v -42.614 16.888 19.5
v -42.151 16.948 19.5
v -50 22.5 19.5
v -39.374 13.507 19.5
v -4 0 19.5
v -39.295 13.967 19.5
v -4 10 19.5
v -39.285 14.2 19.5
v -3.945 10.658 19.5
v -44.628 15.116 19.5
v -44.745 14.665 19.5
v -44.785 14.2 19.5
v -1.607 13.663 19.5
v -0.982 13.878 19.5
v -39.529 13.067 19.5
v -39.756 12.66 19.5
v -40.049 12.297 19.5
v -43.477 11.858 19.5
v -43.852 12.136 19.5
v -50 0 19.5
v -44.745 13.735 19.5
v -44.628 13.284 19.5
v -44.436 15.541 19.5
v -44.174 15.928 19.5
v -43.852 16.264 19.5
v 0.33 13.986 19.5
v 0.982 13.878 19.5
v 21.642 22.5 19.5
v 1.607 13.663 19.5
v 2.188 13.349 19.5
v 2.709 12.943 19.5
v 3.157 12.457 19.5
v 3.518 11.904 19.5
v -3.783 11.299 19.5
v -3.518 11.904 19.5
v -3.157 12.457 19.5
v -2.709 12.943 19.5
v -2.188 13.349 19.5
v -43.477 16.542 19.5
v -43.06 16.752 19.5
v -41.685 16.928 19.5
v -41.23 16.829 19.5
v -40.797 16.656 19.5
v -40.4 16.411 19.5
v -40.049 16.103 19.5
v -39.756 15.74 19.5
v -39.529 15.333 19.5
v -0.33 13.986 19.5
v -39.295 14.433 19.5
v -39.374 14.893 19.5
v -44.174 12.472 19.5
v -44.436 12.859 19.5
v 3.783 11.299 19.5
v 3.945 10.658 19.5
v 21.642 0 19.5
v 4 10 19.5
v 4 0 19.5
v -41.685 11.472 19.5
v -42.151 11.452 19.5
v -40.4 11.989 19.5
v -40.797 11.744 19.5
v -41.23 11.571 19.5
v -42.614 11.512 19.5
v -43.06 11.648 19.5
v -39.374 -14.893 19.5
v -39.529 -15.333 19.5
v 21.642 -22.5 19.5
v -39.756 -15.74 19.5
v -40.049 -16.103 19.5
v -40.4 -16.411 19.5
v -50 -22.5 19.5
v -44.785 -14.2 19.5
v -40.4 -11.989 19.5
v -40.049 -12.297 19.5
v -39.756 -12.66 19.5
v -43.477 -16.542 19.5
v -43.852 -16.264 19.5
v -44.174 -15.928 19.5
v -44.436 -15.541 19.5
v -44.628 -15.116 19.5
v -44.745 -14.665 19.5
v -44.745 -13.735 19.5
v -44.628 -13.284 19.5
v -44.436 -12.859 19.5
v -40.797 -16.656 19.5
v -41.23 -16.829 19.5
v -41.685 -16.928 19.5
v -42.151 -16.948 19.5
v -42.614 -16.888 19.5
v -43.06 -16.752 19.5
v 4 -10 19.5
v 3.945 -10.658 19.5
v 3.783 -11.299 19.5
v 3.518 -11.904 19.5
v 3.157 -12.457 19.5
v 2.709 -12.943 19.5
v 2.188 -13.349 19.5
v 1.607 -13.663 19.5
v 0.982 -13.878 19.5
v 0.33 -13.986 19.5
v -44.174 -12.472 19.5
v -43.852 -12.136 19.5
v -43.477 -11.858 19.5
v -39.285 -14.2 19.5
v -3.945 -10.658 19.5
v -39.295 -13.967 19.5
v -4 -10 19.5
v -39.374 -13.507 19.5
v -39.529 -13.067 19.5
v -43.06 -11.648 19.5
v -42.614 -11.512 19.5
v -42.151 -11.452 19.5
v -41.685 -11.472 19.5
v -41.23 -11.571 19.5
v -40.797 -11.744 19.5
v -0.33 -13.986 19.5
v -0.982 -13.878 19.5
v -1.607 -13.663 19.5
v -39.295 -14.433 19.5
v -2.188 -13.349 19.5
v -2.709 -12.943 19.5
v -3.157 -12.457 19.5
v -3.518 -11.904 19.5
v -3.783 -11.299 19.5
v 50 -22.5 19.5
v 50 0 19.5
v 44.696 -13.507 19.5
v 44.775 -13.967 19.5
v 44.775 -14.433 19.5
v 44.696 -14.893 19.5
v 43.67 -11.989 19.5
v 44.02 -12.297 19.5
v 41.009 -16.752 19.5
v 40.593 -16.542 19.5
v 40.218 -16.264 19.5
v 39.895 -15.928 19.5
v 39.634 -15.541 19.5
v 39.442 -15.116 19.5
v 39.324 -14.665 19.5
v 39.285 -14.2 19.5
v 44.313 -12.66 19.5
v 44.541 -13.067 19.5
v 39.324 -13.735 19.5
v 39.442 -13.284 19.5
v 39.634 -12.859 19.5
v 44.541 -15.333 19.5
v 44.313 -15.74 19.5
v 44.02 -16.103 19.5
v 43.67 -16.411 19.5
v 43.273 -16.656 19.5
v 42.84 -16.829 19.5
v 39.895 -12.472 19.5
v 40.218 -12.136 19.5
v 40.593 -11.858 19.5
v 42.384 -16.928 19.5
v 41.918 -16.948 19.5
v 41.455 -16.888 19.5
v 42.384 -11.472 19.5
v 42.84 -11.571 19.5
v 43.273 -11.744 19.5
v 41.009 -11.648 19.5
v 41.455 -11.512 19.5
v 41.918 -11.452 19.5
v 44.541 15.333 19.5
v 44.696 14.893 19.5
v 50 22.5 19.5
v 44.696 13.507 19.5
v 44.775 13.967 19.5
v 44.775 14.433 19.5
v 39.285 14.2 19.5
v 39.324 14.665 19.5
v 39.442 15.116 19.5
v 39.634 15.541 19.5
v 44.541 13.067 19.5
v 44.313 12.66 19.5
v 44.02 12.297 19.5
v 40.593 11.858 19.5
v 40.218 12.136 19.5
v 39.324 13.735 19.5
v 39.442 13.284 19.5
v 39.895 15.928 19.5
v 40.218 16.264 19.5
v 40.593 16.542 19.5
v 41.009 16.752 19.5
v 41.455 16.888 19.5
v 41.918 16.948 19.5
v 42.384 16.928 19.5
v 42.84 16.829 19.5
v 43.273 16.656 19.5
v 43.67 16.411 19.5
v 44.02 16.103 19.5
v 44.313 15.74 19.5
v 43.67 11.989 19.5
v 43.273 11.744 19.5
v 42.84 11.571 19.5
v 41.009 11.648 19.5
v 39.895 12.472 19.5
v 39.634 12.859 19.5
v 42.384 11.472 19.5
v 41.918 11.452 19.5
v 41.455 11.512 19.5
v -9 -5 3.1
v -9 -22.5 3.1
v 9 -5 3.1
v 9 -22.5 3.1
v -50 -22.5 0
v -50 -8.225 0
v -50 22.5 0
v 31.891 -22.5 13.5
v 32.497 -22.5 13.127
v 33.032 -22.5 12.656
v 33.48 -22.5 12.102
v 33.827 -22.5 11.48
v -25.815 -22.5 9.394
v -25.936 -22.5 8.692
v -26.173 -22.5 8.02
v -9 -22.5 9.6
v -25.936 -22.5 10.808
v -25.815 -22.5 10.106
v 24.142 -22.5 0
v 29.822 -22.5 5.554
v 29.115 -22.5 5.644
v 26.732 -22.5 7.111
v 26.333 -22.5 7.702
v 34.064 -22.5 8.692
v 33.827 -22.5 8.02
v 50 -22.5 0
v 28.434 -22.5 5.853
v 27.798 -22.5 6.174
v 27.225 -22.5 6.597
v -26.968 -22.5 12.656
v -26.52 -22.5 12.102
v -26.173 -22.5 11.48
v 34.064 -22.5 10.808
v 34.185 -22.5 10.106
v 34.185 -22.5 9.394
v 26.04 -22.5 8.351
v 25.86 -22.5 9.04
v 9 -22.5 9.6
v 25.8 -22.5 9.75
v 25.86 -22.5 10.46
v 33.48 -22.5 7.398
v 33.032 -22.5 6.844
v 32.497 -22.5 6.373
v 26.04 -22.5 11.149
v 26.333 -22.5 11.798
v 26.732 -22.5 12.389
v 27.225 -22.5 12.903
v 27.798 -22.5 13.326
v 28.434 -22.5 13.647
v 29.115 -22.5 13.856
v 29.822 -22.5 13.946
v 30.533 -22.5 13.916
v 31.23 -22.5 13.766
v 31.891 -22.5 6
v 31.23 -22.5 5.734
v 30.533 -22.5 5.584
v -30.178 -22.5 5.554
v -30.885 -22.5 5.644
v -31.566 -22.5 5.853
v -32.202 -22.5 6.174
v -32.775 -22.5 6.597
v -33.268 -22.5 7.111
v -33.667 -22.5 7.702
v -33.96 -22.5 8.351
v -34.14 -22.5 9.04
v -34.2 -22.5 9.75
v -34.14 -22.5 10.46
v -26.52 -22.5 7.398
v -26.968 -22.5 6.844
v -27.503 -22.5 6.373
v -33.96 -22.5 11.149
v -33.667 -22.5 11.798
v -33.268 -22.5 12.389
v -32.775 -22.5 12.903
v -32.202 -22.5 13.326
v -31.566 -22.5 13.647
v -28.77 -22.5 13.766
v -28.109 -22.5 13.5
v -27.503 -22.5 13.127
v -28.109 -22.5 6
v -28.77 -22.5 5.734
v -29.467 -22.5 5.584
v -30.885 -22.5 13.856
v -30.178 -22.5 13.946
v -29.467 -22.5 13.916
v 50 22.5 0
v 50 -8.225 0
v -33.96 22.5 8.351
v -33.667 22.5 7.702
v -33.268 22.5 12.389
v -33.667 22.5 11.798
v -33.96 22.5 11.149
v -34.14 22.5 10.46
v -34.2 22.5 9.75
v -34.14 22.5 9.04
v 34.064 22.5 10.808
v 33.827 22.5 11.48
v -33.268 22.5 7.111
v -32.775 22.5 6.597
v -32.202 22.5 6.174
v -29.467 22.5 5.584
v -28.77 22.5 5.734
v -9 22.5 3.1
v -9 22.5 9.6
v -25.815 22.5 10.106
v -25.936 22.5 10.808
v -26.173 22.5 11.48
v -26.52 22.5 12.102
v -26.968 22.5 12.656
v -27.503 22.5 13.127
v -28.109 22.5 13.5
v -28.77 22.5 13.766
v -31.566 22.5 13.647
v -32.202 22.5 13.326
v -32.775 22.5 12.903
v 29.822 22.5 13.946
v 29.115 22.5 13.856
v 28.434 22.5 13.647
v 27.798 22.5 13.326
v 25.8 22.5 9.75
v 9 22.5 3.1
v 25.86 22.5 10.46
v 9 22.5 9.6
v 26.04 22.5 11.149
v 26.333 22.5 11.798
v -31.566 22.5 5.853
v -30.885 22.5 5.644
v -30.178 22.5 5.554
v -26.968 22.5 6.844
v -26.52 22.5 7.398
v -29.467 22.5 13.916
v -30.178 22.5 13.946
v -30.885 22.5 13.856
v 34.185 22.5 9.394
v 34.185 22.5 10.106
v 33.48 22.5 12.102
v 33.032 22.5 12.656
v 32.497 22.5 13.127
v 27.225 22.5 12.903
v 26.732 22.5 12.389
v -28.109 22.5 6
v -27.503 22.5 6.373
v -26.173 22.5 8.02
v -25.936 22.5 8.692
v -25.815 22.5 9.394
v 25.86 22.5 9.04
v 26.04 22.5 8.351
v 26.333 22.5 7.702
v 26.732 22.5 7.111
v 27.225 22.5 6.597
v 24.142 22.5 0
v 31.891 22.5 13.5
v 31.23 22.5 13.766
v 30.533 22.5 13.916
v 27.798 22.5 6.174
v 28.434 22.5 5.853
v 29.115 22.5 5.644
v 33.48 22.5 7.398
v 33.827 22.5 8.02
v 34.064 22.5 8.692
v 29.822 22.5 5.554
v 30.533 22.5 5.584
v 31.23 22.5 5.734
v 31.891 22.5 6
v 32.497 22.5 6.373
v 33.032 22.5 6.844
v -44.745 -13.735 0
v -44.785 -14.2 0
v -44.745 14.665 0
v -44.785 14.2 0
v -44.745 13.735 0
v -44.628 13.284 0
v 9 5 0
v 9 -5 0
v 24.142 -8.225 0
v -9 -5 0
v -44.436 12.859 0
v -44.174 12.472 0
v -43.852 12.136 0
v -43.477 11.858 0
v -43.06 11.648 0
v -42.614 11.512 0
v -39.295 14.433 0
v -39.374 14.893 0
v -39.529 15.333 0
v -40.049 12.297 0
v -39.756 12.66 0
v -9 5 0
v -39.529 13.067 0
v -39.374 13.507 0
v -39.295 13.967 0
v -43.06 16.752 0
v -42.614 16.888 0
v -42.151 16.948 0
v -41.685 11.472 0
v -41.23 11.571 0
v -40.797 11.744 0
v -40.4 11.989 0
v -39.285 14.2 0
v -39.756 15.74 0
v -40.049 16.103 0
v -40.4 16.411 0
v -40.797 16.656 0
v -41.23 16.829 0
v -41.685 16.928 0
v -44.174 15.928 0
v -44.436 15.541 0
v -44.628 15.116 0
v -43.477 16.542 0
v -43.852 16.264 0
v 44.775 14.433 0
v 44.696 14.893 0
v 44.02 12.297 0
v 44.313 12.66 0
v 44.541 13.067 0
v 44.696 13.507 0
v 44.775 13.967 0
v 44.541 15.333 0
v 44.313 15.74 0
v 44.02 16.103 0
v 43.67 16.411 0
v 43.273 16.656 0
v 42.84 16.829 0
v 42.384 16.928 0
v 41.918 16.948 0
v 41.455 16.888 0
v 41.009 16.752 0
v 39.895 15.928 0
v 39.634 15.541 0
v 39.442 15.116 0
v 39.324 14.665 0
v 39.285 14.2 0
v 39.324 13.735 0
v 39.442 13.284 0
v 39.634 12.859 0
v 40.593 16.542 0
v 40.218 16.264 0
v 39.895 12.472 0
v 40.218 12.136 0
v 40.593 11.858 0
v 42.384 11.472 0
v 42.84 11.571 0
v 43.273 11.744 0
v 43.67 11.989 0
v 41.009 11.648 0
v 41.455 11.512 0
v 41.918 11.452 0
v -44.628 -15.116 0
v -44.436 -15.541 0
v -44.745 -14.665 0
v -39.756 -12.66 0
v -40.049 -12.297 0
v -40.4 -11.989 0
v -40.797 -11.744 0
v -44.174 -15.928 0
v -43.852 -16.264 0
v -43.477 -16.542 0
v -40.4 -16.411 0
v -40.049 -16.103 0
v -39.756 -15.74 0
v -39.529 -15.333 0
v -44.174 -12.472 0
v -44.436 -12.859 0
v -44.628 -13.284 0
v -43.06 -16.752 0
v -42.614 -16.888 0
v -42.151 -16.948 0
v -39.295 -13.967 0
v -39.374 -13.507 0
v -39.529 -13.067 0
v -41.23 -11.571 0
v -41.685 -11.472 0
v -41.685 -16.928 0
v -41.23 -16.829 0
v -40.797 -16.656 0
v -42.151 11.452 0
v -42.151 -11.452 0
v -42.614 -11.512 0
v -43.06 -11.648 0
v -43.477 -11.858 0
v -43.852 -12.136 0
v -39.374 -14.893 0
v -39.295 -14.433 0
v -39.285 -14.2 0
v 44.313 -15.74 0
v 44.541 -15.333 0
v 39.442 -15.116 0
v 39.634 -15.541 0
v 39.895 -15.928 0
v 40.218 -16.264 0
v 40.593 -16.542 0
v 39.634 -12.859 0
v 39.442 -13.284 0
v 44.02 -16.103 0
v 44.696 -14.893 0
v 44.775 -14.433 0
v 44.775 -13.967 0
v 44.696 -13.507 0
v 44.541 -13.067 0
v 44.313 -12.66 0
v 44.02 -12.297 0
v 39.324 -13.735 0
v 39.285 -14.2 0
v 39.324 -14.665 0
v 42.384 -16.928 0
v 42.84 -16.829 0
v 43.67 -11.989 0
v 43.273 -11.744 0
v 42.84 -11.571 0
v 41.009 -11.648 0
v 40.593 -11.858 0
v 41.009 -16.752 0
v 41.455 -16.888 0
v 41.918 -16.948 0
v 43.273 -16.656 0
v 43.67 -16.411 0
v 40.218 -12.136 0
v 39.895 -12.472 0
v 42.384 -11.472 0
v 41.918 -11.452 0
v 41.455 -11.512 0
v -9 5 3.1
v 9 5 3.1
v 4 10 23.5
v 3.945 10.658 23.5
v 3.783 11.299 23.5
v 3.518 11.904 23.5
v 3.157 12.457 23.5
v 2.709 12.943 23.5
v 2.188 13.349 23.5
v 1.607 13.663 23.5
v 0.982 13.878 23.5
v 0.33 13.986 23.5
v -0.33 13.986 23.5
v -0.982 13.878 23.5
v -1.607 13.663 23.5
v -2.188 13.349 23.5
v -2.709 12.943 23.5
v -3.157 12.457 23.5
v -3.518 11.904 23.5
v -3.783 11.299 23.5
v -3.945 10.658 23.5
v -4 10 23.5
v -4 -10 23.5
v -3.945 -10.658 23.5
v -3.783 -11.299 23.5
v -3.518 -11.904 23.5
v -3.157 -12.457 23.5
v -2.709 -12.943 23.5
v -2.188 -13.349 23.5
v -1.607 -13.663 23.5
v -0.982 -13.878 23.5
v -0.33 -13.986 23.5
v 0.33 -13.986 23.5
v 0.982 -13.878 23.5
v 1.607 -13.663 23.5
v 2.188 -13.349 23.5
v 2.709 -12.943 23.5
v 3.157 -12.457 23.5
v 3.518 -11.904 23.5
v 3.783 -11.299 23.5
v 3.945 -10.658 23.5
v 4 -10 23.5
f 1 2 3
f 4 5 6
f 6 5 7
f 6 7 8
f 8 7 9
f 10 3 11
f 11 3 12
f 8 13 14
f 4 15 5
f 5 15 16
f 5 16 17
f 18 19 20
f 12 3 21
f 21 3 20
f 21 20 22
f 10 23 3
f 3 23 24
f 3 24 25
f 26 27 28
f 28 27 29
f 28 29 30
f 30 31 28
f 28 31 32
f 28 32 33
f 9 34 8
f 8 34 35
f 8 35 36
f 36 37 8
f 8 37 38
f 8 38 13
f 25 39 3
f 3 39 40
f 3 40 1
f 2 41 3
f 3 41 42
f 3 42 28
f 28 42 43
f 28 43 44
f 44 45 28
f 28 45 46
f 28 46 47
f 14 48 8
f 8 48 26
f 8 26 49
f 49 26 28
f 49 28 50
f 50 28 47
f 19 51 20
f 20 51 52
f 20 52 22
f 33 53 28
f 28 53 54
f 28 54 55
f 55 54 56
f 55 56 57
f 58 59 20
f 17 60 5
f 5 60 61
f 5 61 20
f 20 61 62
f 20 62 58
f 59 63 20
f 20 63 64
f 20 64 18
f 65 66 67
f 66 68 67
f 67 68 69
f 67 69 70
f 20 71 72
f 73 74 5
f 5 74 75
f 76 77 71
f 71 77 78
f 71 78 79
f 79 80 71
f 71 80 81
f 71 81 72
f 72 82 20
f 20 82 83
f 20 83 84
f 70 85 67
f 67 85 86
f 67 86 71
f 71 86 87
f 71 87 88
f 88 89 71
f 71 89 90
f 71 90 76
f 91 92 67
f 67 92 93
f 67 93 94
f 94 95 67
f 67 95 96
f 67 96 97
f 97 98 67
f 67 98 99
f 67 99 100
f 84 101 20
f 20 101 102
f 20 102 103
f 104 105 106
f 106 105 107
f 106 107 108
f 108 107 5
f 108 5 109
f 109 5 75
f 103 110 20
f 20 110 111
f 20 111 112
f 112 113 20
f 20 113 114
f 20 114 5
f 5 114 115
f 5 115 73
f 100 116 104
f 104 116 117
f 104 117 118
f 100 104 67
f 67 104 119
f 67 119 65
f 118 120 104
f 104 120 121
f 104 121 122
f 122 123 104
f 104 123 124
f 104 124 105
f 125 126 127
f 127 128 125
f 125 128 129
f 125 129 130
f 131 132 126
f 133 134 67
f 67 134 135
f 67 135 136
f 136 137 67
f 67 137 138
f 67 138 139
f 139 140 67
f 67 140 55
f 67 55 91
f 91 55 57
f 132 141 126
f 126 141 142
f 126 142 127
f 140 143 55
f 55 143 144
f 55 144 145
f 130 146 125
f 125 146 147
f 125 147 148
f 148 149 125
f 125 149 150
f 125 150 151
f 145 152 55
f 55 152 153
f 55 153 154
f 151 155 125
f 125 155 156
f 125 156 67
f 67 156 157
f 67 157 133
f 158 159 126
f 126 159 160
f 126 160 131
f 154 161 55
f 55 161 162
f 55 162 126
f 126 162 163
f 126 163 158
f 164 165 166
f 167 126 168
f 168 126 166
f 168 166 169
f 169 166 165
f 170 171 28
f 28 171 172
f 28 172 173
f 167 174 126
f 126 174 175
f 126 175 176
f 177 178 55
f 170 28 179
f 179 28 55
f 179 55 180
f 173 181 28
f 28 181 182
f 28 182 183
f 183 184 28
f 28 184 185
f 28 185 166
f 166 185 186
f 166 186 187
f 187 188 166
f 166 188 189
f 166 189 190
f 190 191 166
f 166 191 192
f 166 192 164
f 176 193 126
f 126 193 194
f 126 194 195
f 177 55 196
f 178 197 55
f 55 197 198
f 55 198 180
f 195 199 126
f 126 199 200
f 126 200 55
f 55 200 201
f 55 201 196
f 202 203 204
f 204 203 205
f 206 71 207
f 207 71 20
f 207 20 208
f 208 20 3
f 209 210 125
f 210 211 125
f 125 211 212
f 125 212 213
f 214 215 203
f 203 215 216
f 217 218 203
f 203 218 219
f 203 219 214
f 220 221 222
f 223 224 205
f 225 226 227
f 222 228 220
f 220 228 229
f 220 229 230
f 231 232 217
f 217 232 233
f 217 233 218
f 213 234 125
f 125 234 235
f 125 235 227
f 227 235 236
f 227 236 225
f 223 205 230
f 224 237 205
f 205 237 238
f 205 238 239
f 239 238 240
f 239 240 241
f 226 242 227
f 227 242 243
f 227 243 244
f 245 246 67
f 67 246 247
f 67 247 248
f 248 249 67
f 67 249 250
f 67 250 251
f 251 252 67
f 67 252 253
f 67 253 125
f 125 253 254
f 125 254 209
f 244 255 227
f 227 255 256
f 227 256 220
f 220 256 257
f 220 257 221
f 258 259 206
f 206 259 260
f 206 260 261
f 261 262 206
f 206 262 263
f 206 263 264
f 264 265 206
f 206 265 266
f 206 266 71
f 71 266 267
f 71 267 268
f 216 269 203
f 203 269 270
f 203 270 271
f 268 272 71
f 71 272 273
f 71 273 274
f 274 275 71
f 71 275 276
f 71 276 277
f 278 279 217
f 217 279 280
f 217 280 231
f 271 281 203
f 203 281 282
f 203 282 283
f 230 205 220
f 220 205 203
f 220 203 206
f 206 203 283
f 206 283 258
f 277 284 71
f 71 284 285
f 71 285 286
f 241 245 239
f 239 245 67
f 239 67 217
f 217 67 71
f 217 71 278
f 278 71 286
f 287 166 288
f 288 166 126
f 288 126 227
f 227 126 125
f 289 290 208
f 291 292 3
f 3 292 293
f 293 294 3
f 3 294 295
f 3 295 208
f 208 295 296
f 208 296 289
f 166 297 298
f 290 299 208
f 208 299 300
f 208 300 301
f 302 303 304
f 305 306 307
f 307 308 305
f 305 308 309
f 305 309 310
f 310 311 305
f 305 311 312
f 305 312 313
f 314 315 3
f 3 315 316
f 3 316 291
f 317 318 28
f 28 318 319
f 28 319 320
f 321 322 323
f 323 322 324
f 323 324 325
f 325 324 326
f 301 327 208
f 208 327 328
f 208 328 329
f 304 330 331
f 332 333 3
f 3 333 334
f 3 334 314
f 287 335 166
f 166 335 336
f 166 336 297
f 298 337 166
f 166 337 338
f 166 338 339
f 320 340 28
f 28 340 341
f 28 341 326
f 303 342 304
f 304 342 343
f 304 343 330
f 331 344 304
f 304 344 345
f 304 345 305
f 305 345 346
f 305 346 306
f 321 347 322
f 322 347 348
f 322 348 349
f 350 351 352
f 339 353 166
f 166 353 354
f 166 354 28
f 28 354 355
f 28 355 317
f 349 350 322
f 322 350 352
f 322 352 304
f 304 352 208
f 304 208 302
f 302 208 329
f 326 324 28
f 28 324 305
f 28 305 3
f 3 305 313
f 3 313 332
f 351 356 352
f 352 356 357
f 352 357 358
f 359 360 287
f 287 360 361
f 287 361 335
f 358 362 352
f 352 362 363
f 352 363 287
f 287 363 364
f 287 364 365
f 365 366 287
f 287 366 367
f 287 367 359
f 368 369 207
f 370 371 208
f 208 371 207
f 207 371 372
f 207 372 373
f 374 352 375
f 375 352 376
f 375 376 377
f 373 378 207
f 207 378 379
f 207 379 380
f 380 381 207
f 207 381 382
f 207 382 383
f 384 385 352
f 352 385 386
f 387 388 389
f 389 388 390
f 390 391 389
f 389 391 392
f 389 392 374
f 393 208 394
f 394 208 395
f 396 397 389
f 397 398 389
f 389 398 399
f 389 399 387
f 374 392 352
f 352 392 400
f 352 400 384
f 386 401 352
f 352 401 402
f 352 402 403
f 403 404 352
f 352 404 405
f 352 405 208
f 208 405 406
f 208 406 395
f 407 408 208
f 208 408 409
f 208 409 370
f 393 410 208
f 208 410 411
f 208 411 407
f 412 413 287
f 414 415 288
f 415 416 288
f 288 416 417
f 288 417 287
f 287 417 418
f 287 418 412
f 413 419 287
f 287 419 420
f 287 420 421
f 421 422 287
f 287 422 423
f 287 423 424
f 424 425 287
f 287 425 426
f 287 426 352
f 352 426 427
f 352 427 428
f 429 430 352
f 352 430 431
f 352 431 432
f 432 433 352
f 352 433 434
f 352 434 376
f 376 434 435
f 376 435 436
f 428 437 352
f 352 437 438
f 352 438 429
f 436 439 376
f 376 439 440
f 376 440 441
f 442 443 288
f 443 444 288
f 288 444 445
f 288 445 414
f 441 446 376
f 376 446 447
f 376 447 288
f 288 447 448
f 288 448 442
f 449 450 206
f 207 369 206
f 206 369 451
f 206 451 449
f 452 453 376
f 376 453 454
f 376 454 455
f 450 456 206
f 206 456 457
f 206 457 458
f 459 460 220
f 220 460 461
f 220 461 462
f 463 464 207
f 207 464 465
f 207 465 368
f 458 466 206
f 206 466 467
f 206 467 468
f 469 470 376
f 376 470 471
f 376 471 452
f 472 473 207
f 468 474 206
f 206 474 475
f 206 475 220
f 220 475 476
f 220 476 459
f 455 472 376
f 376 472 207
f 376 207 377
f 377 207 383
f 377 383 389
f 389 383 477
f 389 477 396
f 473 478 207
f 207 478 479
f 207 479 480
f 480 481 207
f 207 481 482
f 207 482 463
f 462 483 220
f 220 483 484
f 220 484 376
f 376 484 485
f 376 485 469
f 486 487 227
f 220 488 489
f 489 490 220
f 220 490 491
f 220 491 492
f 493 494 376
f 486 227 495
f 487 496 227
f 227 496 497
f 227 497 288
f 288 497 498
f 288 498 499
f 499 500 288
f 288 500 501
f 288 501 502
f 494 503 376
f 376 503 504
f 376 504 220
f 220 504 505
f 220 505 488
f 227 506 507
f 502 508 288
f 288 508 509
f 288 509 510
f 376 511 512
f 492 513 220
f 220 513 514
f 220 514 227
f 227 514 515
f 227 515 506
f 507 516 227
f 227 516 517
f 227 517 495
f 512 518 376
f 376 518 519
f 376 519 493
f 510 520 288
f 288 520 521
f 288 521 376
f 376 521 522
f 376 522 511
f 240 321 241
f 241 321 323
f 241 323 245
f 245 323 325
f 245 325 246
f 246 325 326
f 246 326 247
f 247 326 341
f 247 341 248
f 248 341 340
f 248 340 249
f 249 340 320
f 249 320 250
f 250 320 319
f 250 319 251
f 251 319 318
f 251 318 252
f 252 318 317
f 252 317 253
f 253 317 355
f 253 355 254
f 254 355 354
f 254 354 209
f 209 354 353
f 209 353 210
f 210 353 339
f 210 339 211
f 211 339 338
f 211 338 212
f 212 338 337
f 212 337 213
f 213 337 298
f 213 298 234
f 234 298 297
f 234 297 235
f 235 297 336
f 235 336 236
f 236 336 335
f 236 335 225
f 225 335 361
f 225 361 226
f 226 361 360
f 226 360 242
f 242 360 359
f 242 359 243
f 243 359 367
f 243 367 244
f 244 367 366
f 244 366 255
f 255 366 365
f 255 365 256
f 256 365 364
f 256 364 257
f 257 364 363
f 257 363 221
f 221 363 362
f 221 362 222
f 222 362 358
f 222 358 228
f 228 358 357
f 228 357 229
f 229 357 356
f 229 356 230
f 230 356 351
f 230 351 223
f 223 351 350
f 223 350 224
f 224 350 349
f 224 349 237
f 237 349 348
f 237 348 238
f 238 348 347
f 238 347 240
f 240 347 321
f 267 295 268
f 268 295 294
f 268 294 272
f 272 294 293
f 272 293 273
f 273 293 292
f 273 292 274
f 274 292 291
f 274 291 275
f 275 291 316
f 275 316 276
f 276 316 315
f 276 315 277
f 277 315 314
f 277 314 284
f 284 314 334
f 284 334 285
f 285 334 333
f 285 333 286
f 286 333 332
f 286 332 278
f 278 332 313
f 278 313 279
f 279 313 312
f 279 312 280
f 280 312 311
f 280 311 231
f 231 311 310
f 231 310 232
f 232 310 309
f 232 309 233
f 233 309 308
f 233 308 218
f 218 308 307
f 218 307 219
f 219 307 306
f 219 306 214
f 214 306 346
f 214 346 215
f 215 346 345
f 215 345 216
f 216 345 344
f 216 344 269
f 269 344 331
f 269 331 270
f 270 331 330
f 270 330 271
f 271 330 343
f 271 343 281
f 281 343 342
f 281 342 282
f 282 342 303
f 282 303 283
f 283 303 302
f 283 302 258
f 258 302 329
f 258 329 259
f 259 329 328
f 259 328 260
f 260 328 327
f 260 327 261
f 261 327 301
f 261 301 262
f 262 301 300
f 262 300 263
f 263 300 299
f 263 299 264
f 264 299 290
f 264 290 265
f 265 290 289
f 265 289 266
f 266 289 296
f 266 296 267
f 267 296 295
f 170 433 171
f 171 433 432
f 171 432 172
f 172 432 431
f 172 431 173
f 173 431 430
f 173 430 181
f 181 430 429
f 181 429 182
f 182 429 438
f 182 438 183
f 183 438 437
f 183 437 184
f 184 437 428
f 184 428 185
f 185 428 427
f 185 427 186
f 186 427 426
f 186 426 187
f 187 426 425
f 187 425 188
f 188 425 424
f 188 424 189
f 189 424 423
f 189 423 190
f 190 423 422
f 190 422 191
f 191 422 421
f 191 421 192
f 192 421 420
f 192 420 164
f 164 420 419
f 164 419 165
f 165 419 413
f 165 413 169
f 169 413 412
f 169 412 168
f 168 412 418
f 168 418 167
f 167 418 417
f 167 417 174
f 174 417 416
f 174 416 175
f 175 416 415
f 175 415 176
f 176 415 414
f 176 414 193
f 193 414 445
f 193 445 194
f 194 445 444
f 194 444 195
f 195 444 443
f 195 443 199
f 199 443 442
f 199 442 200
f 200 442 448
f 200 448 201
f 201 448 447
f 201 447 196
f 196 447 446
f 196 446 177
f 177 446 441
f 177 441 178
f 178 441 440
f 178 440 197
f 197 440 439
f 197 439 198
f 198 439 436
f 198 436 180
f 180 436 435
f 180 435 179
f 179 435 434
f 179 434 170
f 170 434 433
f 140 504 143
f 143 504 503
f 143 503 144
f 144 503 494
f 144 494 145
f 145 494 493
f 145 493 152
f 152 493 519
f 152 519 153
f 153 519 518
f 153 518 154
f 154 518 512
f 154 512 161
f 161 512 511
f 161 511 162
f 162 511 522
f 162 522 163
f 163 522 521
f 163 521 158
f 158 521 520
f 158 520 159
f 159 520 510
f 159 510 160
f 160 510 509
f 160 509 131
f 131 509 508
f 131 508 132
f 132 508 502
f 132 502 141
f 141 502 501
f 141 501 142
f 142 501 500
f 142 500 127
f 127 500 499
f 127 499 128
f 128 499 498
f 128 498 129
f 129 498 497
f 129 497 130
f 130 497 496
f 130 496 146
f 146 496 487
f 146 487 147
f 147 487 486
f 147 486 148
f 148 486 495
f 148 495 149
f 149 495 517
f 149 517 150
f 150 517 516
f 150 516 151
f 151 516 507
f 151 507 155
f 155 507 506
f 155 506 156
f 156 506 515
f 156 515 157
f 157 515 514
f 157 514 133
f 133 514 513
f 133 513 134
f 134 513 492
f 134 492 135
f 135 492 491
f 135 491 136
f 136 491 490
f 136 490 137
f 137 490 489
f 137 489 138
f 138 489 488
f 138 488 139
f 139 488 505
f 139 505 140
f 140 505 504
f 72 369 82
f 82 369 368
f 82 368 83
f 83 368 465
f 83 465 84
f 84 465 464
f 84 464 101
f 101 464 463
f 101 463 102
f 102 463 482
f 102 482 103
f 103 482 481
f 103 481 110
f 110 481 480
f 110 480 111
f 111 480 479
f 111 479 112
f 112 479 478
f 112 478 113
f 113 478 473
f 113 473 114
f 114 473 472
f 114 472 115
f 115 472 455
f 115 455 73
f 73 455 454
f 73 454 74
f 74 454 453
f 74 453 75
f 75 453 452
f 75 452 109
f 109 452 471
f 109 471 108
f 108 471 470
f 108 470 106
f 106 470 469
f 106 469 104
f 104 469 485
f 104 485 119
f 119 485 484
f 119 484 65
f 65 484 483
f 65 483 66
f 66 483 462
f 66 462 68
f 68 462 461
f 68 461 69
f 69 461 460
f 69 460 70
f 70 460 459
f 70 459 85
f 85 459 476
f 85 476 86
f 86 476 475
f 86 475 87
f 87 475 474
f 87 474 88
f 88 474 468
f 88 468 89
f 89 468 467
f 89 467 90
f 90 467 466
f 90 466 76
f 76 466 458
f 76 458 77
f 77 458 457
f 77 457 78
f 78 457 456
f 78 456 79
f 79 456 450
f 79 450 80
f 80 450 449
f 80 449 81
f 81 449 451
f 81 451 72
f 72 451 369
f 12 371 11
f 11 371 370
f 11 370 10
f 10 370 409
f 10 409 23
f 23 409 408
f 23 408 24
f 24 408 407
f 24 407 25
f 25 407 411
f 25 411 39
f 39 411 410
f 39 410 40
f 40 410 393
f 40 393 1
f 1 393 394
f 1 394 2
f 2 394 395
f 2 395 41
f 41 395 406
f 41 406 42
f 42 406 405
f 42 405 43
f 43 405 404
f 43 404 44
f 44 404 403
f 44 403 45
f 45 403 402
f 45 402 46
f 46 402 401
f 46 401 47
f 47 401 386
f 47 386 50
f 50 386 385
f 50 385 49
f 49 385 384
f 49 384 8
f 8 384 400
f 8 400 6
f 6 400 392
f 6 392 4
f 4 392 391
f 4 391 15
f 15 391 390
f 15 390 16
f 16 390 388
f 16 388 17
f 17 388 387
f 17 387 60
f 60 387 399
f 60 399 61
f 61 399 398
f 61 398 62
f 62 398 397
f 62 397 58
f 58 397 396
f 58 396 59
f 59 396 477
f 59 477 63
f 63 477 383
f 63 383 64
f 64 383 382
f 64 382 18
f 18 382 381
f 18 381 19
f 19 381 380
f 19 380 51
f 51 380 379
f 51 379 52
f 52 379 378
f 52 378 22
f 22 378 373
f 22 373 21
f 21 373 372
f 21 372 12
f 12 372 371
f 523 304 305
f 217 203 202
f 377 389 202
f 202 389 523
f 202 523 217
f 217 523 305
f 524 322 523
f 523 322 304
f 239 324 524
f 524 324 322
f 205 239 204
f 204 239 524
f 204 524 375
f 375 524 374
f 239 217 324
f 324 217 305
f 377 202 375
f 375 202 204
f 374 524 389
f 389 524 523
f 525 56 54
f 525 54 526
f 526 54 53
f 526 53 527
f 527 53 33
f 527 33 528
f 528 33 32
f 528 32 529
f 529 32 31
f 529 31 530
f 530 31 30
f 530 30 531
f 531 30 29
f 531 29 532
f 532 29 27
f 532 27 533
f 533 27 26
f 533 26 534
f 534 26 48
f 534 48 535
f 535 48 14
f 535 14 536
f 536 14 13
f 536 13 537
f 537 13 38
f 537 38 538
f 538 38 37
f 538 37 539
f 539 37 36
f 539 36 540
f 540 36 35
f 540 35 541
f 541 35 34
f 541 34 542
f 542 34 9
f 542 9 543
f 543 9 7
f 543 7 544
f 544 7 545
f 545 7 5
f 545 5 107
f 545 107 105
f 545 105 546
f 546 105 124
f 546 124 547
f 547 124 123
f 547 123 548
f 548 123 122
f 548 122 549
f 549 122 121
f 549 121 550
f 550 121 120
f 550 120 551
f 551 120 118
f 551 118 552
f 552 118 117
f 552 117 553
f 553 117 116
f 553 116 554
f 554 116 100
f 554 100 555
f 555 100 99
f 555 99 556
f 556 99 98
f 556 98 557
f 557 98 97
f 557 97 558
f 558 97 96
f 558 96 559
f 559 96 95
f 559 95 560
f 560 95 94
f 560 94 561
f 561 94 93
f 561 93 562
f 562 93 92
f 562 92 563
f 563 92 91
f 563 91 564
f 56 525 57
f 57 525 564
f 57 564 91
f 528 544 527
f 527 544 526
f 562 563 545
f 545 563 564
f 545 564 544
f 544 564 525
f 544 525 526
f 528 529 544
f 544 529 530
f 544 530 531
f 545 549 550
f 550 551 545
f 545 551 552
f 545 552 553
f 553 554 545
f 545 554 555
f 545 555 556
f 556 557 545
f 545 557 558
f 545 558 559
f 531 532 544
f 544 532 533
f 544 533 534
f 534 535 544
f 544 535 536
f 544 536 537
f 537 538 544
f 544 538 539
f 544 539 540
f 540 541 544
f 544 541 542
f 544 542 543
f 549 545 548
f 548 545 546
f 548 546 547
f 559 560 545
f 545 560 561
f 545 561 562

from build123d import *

# Parameters (mm, degrees)
SKETCH1_W           = 100
SKETCH1_H           = 45
BOSS_EXTRUDE1_DEPTH = 19.5
SKETCH2_R           = 4
CUT_EXTRUDE1_DEPTH  = 46
SKETCH4_R           = 2.75
CUT_EXTRUDE3_DEPTH  = 20.5
SKETCH5_W           = 18
SKETCH5_H           = 6.5
CUT_EXTRUDE5_DEPTH  = 46
SKETCH6_W           = 18
SKETCH6_H           = 10
CUT_EXTRUDE6_DEPTH  = 4
BOSS_EXTRUDE2_DEPTH = 4


with BuildPart() as part:
    # Sketch1 → Boss-Extrude1 (new body)
    with BuildSketch(Plane.XY):
        Rectangle(SKETCH1_W, SKETCH1_H)
    extrude(amount=BOSS_EXTRUDE1_DEPTH)

    # Sketch2 → Cut-Extrude1 (cut, through all)
    with BuildSketch(Plane(origin=(0, 22.5, 0), x_dir=(1, 0, 0), z_dir=(0, 1, 0))):
        with Locations((-30, -9.75)):
            Circle(SKETCH2_R)
        with Locations((30, -9.75)):
            Circle(SKETCH2_R)
    extrude(amount=-CUT_EXTRUDE1_DEPTH, mode=Mode.SUBTRACT)

    # Sketch4 → Cut-Extrude3 (cut, through all)
    with BuildSketch(Plane(origin=(0, 0, 0), x_dir=(-1, 0, 0), z_dir=(0, 0, -1))):
        with Locations((-42.034787685, 14.2)):
            Circle(SKETCH4_R)
        with Locations((-42.034787685, -14.2)):
            Circle(SKETCH4_R)
        with Locations((42.034787685, -14.2)):
            Circle(SKETCH4_R)
        with Locations((42.034787685, 14.2)):
            Circle(SKETCH4_R)
    extrude(amount=-CUT_EXTRUDE3_DEPTH, mode=Mode.SUBTRACT)

    # Sketch5 → Cut-Extrude5 (cut, through all)
    with BuildSketch(Plane(origin=(0, 22.5, 0), x_dir=(1, 0, 0), z_dir=(0, 1, 0))):
        with Locations((0, -6.35)):
            Rectangle(SKETCH5_W, SKETCH5_H)
    extrude(amount=-CUT_EXTRUDE5_DEPTH, mode=Mode.SUBTRACT)

    # Sketch6 → Cut-Extrude6 (cut)
    with BuildSketch(Plane(origin=(0, 0, 0), x_dir=(-1, 0, 0), z_dir=(0, 0, -1))):
        Rectangle(SKETCH6_W, SKETCH6_H)
    extrude(amount=-CUT_EXTRUDE6_DEPTH, mode=Mode.SUBTRACT)

    # Sketch7 → Boss-Extrude2 (add)
    with BuildSketch(Plane.XY.offset(19.5)):
        with BuildLine():
            Line((4, 10), (4, -10))
            ThreePointArc((4, -10), (0, -14), (-4, -10))
            Line((-4, -10), (-4, 10))
            ThreePointArc((-4, 10), (0, 14), (4, 10))
        make_face()
    extrude(amount=BOSS_EXTRUDE2_DEPTH)


solid = part.part
